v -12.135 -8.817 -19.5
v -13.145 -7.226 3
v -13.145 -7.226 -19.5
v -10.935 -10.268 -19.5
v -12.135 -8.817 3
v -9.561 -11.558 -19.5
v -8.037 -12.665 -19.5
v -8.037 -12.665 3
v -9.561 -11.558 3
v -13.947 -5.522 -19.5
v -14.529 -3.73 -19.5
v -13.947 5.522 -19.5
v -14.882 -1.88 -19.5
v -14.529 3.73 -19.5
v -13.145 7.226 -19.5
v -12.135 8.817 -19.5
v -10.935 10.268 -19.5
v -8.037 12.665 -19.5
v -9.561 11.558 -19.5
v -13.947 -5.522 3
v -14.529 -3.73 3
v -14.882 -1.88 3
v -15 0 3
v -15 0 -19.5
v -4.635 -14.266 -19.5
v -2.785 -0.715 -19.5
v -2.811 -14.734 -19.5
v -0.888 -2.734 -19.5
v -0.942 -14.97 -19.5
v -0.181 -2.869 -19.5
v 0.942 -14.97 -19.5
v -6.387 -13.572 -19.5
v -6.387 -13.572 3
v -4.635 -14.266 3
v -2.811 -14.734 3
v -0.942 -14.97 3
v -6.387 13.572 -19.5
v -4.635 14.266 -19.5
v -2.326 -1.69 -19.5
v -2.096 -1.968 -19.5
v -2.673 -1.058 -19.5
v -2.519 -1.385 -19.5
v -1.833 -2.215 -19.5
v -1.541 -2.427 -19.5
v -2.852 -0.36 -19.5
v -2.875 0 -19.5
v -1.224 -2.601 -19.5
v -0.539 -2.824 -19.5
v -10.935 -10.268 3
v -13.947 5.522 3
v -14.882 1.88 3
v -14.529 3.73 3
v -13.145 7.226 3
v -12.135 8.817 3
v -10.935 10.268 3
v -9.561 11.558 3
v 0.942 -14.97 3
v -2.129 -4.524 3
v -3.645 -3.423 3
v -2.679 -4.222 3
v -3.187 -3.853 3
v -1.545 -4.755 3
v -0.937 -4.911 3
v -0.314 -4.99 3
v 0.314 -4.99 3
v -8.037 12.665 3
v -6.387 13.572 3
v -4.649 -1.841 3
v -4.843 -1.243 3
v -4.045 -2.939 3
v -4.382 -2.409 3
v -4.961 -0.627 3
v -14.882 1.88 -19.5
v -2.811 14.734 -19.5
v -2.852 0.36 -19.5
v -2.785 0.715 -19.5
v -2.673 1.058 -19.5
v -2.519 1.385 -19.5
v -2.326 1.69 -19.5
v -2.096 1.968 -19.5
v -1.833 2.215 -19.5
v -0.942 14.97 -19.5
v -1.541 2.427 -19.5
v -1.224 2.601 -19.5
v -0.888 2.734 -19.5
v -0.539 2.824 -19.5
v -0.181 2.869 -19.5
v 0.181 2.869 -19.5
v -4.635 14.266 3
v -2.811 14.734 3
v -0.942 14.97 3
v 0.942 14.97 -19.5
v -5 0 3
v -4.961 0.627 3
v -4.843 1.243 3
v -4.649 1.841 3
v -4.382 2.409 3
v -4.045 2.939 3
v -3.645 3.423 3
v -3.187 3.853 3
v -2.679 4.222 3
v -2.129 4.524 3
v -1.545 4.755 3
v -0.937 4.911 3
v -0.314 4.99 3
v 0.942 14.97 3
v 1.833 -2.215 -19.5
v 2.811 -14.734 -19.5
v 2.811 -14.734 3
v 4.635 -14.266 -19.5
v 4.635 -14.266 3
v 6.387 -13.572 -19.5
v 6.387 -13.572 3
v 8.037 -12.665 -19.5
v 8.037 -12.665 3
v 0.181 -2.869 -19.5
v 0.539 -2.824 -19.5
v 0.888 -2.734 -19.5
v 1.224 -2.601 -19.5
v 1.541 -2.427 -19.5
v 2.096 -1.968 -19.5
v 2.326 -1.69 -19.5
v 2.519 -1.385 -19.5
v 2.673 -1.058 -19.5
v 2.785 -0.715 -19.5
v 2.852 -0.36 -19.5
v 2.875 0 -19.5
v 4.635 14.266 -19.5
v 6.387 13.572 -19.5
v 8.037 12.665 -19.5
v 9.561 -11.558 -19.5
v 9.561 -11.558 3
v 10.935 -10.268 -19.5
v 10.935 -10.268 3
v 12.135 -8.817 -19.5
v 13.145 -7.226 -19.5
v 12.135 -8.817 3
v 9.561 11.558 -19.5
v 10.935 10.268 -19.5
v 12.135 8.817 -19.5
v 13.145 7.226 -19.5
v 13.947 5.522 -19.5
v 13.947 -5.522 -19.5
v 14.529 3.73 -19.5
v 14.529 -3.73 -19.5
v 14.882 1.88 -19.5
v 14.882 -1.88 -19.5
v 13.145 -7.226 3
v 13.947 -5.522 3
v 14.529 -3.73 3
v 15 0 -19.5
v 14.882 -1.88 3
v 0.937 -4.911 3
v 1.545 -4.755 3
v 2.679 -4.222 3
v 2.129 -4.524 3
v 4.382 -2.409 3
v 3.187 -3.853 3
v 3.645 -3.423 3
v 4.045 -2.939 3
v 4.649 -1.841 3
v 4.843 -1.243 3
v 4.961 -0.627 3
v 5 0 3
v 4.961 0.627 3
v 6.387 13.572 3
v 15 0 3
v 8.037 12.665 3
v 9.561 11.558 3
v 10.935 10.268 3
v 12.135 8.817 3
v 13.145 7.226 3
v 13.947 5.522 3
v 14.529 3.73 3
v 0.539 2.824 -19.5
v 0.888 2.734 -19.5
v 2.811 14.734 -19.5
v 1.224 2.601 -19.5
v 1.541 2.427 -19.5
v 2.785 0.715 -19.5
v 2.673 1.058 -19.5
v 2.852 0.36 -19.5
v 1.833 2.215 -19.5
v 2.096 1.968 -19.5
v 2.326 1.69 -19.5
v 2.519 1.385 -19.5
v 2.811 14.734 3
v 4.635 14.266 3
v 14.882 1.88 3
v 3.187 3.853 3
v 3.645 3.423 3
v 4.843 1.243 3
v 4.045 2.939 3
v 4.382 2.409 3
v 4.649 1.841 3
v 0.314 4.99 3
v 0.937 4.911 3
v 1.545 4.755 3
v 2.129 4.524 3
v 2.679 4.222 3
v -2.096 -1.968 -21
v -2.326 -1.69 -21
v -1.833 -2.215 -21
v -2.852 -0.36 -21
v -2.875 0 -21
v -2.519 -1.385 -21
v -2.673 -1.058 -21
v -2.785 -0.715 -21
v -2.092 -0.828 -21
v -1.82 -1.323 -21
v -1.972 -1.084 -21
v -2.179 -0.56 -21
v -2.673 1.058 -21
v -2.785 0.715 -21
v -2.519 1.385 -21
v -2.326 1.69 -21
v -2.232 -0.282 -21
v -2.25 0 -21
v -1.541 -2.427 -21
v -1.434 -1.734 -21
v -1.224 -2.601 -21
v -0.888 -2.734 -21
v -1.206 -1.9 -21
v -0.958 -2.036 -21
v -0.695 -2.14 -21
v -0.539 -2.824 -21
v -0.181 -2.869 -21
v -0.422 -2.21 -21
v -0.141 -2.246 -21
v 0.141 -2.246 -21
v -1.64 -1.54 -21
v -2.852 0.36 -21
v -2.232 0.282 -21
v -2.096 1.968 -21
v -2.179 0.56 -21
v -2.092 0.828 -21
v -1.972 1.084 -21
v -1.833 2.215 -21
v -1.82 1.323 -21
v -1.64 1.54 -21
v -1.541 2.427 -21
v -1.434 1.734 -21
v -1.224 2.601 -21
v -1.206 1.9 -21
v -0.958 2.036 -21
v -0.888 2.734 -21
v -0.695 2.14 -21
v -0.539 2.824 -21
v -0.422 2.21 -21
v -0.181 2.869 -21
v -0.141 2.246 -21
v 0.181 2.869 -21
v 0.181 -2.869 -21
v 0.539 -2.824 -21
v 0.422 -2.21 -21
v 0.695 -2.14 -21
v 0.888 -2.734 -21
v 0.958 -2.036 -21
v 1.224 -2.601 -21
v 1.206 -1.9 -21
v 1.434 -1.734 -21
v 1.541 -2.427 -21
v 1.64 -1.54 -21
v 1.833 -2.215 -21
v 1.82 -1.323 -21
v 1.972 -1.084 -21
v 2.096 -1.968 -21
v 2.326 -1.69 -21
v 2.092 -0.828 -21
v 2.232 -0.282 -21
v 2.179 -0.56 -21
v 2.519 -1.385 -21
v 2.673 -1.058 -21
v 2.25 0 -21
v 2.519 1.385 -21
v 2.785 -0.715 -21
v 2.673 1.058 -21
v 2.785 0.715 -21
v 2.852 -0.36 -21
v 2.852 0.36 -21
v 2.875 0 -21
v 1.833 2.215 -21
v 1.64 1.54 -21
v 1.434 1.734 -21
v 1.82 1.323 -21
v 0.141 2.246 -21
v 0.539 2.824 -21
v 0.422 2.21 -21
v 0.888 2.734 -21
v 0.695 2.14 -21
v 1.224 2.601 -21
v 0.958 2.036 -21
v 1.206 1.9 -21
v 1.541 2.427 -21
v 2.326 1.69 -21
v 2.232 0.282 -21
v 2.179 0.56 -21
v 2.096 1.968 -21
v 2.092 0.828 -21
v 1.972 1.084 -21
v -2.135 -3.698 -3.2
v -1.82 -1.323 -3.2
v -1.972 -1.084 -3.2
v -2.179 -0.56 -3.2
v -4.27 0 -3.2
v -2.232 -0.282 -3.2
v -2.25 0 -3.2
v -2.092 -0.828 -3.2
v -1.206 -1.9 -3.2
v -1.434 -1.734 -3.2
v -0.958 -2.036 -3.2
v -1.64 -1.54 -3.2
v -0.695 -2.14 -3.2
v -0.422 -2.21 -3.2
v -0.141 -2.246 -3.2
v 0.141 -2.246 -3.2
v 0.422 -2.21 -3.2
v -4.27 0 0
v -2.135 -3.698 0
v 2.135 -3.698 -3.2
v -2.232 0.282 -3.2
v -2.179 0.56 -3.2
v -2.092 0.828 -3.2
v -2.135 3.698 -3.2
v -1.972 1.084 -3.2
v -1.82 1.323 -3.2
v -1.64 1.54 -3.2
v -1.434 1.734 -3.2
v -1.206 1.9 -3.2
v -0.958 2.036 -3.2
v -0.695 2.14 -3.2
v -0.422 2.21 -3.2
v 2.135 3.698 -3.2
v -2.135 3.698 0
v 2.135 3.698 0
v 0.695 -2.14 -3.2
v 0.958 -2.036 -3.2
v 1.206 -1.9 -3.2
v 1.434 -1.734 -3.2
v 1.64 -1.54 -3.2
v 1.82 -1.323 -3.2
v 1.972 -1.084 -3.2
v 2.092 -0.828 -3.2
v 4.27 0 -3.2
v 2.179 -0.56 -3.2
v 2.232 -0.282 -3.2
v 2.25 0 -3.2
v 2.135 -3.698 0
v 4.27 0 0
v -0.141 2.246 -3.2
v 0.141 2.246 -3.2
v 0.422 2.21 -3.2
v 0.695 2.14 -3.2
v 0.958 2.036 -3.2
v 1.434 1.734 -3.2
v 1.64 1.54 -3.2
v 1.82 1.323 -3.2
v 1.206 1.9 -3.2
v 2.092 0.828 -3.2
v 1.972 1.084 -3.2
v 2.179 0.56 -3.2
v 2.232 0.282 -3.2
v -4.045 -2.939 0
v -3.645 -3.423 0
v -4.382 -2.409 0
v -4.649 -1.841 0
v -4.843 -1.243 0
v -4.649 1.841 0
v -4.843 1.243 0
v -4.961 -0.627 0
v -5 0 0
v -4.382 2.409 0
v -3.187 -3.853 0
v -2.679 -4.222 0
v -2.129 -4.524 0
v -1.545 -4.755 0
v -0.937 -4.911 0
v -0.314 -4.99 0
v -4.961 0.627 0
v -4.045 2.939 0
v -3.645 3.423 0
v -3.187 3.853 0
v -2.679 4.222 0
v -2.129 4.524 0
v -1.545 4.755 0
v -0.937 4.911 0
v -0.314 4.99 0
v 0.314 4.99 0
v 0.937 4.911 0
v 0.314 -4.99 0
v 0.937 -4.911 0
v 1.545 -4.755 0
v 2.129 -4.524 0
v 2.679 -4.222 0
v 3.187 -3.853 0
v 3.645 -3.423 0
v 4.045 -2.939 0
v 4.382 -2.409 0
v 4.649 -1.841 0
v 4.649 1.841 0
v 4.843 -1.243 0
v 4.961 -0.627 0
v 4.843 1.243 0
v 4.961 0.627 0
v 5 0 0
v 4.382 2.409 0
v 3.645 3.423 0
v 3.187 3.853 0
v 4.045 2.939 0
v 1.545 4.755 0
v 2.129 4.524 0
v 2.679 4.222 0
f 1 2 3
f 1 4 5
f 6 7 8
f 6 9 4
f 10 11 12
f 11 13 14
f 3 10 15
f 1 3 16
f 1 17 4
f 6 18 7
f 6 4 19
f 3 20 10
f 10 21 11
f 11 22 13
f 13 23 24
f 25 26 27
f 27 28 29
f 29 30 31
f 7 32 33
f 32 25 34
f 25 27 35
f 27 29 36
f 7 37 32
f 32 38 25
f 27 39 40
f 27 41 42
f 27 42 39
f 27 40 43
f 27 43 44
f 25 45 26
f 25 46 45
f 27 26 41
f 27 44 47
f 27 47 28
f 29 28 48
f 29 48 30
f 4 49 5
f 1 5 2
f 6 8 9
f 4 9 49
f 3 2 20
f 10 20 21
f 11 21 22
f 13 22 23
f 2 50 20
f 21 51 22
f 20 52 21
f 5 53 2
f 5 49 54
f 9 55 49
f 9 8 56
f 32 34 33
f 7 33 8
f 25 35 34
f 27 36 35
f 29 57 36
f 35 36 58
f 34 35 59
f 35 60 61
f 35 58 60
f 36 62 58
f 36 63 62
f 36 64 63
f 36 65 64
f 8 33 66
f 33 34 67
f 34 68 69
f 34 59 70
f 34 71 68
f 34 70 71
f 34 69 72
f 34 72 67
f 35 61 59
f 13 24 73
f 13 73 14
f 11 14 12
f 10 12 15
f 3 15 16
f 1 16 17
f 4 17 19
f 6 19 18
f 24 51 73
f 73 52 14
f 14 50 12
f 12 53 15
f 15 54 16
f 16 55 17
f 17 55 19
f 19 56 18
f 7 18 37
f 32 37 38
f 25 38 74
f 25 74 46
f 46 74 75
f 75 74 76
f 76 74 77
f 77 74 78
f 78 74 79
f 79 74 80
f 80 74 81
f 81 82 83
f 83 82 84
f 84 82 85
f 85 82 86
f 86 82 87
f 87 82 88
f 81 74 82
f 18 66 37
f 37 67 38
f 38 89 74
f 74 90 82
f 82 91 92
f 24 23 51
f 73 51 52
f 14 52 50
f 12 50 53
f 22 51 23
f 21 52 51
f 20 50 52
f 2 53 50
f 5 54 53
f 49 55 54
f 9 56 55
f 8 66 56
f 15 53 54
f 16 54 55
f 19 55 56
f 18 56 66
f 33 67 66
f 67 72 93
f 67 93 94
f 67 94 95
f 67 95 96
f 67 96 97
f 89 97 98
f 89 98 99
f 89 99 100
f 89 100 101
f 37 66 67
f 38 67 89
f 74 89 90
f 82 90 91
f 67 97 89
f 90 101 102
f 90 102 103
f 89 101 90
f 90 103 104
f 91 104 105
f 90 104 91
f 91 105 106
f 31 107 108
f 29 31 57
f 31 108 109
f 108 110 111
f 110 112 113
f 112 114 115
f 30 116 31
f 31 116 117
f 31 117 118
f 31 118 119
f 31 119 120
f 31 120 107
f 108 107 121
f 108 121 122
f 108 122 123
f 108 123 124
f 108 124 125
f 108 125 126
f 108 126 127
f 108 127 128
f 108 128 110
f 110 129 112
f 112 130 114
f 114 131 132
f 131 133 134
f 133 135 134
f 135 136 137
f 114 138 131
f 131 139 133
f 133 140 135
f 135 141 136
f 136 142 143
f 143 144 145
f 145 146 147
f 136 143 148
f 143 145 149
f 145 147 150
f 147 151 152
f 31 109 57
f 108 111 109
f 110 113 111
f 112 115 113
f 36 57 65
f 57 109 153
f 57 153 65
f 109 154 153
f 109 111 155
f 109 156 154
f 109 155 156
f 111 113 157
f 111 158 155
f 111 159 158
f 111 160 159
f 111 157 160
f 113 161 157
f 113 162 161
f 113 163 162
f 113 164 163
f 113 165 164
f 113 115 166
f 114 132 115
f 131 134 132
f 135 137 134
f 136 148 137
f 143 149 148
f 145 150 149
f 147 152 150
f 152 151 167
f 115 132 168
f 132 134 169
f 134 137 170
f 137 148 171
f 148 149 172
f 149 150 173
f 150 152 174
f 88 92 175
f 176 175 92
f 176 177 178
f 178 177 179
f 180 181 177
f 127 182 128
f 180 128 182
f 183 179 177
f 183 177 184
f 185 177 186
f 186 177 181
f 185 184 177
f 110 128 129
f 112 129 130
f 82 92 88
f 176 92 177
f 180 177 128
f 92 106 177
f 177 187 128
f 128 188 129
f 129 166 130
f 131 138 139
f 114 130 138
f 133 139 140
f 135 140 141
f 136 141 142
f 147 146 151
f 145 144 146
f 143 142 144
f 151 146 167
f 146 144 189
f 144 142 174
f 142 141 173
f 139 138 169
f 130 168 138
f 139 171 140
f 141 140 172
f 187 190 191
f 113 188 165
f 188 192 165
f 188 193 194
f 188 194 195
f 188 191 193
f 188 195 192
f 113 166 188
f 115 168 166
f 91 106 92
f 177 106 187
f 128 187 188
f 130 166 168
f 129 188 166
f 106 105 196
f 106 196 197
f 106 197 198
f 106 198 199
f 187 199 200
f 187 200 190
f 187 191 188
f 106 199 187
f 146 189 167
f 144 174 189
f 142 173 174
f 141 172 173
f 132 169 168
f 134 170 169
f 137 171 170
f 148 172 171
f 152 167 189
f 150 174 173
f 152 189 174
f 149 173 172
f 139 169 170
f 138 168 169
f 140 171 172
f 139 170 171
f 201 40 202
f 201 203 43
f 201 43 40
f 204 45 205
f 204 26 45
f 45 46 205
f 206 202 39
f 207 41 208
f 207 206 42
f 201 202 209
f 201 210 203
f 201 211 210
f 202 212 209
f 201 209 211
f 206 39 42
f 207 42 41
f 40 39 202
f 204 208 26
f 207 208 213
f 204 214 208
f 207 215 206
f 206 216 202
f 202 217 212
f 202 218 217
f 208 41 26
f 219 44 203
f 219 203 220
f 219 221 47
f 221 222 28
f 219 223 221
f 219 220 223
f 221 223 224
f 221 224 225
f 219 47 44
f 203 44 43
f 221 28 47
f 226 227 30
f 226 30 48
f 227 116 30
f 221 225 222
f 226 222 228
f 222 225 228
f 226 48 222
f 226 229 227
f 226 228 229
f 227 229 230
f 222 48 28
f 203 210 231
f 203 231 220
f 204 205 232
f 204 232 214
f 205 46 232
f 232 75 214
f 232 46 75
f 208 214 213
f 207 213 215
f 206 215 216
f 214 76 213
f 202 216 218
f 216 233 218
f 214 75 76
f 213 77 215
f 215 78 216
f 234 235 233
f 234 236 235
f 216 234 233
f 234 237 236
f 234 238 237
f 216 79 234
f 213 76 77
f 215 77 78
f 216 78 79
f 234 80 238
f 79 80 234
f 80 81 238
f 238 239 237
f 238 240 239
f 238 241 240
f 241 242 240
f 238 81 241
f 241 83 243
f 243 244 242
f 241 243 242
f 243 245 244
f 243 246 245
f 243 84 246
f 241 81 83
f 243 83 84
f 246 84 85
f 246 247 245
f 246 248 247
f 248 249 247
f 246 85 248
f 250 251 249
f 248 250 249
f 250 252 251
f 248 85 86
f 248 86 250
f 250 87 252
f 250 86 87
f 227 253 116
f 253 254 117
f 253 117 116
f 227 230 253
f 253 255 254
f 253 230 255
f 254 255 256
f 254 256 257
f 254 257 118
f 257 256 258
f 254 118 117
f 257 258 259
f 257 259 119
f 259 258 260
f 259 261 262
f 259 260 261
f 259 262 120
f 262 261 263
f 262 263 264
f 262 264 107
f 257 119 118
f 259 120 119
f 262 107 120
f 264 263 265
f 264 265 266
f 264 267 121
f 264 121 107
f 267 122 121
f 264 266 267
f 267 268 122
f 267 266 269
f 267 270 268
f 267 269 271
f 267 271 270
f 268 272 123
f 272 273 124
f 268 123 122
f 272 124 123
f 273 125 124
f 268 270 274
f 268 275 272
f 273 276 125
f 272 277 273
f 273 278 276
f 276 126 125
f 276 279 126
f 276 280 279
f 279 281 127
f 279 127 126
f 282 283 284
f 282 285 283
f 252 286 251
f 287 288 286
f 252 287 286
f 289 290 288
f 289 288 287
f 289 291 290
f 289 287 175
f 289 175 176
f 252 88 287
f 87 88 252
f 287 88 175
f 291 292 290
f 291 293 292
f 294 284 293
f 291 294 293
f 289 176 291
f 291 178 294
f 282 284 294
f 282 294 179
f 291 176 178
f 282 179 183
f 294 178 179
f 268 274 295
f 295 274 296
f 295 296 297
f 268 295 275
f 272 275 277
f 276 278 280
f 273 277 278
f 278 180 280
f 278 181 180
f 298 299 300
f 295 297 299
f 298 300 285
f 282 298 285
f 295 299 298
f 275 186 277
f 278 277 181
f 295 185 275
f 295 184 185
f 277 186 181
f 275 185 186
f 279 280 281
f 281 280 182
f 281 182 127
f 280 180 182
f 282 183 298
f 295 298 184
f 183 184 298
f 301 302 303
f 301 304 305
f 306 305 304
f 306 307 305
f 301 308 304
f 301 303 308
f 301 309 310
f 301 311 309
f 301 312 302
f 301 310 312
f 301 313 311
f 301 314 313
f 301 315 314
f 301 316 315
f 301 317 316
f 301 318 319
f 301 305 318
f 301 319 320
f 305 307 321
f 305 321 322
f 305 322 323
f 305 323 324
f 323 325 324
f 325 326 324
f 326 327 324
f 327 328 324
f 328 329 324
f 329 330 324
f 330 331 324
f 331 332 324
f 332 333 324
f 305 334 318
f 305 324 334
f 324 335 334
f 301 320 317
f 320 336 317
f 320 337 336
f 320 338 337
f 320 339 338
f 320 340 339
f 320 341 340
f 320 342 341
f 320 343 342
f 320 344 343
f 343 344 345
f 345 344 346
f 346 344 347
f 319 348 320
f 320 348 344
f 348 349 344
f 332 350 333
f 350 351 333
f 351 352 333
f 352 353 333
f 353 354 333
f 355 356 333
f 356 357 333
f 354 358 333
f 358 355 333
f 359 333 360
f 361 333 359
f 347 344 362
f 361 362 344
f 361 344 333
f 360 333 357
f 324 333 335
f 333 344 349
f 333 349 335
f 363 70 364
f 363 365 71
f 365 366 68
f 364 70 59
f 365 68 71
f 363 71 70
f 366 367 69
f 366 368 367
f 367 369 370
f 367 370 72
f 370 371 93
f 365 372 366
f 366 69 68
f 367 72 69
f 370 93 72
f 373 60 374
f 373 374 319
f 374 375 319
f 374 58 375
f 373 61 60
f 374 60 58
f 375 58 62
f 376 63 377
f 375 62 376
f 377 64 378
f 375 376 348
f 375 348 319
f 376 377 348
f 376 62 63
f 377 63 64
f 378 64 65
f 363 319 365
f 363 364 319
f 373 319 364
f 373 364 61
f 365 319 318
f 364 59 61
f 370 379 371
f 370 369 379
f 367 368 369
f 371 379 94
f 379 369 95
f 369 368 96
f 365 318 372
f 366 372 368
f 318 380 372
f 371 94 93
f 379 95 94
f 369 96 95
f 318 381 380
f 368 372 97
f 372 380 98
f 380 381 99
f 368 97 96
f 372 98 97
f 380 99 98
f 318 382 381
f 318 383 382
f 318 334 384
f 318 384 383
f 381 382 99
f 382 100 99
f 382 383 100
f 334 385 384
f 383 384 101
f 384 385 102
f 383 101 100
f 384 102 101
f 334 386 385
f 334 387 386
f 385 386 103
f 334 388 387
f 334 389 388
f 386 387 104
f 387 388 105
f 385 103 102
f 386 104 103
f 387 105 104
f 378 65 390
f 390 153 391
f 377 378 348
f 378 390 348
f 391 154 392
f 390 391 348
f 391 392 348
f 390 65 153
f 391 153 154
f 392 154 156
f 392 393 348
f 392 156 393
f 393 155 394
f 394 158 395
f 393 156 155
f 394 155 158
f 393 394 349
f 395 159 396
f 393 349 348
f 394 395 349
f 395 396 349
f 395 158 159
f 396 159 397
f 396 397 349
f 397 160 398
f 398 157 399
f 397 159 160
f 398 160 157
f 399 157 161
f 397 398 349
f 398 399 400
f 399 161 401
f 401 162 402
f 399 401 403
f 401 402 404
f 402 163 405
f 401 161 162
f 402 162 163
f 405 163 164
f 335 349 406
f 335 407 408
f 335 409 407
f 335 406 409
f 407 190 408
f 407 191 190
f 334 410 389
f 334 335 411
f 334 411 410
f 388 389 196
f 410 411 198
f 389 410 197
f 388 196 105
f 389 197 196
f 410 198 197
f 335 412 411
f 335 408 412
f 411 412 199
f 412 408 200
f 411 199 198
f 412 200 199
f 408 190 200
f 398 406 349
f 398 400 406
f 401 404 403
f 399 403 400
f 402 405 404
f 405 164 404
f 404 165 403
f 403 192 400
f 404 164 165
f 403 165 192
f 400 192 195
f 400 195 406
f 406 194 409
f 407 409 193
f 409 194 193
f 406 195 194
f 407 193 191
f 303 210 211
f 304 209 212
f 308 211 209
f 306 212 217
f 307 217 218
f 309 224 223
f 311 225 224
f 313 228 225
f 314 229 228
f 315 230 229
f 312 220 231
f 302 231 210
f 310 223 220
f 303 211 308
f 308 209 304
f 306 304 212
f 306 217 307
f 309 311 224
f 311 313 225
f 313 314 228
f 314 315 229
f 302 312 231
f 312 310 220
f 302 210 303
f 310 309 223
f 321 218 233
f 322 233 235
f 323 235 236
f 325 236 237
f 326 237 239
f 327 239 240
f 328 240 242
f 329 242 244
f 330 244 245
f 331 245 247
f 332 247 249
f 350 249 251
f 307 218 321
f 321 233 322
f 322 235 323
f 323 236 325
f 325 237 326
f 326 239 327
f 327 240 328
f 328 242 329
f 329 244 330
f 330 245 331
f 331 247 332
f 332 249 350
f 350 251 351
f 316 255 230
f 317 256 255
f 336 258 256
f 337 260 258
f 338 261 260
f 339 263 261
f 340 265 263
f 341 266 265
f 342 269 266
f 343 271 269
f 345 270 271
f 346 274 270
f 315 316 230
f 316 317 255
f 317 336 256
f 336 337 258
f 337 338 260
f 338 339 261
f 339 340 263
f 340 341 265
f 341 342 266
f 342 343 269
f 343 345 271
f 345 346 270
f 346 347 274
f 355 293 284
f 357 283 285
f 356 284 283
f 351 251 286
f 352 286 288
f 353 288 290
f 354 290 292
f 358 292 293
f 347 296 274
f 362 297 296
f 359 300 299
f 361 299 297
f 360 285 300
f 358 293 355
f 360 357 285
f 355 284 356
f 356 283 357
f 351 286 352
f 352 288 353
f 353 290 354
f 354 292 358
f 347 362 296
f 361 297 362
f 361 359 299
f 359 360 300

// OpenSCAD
$fn = 50;

difference() {
	union() {
		translate(v = [0, 0, -19.5]) {
			cylinder(h = 22.5, r = 15.0);
		}
		#translate(v = [0, 0, -21.0]) {
			cylinder(h = 21, r = 2.875);
		}
	}
	union() {
		translate(v = [0, 0, 0]) {
			rotate(a = [0, 0, 0]) {
				difference() {
					union() {
						translate(v = [0, 0, -3.2]) {
							linear_extrude(height = 3.2) {
								polygon(points = [[4.2698, 0.0], [2.1349000000000005, 3.697755269078796], [-2.134899999999999, 3.6977552690787965], [-4.2698, 5.228996902999369e-16], [-2.134900000000002, -3.6977552690787956], [2.1348999999999974, -3.697755269078798]]);
							}
						}
					}
					union();
				}
			}
		}
		#cylinder(h = 3, r = 5.0);
		#translate(v = [0, 0, -100.0]) {
			cylinder(h = 200, r = 2.25);
		}
	}
}
